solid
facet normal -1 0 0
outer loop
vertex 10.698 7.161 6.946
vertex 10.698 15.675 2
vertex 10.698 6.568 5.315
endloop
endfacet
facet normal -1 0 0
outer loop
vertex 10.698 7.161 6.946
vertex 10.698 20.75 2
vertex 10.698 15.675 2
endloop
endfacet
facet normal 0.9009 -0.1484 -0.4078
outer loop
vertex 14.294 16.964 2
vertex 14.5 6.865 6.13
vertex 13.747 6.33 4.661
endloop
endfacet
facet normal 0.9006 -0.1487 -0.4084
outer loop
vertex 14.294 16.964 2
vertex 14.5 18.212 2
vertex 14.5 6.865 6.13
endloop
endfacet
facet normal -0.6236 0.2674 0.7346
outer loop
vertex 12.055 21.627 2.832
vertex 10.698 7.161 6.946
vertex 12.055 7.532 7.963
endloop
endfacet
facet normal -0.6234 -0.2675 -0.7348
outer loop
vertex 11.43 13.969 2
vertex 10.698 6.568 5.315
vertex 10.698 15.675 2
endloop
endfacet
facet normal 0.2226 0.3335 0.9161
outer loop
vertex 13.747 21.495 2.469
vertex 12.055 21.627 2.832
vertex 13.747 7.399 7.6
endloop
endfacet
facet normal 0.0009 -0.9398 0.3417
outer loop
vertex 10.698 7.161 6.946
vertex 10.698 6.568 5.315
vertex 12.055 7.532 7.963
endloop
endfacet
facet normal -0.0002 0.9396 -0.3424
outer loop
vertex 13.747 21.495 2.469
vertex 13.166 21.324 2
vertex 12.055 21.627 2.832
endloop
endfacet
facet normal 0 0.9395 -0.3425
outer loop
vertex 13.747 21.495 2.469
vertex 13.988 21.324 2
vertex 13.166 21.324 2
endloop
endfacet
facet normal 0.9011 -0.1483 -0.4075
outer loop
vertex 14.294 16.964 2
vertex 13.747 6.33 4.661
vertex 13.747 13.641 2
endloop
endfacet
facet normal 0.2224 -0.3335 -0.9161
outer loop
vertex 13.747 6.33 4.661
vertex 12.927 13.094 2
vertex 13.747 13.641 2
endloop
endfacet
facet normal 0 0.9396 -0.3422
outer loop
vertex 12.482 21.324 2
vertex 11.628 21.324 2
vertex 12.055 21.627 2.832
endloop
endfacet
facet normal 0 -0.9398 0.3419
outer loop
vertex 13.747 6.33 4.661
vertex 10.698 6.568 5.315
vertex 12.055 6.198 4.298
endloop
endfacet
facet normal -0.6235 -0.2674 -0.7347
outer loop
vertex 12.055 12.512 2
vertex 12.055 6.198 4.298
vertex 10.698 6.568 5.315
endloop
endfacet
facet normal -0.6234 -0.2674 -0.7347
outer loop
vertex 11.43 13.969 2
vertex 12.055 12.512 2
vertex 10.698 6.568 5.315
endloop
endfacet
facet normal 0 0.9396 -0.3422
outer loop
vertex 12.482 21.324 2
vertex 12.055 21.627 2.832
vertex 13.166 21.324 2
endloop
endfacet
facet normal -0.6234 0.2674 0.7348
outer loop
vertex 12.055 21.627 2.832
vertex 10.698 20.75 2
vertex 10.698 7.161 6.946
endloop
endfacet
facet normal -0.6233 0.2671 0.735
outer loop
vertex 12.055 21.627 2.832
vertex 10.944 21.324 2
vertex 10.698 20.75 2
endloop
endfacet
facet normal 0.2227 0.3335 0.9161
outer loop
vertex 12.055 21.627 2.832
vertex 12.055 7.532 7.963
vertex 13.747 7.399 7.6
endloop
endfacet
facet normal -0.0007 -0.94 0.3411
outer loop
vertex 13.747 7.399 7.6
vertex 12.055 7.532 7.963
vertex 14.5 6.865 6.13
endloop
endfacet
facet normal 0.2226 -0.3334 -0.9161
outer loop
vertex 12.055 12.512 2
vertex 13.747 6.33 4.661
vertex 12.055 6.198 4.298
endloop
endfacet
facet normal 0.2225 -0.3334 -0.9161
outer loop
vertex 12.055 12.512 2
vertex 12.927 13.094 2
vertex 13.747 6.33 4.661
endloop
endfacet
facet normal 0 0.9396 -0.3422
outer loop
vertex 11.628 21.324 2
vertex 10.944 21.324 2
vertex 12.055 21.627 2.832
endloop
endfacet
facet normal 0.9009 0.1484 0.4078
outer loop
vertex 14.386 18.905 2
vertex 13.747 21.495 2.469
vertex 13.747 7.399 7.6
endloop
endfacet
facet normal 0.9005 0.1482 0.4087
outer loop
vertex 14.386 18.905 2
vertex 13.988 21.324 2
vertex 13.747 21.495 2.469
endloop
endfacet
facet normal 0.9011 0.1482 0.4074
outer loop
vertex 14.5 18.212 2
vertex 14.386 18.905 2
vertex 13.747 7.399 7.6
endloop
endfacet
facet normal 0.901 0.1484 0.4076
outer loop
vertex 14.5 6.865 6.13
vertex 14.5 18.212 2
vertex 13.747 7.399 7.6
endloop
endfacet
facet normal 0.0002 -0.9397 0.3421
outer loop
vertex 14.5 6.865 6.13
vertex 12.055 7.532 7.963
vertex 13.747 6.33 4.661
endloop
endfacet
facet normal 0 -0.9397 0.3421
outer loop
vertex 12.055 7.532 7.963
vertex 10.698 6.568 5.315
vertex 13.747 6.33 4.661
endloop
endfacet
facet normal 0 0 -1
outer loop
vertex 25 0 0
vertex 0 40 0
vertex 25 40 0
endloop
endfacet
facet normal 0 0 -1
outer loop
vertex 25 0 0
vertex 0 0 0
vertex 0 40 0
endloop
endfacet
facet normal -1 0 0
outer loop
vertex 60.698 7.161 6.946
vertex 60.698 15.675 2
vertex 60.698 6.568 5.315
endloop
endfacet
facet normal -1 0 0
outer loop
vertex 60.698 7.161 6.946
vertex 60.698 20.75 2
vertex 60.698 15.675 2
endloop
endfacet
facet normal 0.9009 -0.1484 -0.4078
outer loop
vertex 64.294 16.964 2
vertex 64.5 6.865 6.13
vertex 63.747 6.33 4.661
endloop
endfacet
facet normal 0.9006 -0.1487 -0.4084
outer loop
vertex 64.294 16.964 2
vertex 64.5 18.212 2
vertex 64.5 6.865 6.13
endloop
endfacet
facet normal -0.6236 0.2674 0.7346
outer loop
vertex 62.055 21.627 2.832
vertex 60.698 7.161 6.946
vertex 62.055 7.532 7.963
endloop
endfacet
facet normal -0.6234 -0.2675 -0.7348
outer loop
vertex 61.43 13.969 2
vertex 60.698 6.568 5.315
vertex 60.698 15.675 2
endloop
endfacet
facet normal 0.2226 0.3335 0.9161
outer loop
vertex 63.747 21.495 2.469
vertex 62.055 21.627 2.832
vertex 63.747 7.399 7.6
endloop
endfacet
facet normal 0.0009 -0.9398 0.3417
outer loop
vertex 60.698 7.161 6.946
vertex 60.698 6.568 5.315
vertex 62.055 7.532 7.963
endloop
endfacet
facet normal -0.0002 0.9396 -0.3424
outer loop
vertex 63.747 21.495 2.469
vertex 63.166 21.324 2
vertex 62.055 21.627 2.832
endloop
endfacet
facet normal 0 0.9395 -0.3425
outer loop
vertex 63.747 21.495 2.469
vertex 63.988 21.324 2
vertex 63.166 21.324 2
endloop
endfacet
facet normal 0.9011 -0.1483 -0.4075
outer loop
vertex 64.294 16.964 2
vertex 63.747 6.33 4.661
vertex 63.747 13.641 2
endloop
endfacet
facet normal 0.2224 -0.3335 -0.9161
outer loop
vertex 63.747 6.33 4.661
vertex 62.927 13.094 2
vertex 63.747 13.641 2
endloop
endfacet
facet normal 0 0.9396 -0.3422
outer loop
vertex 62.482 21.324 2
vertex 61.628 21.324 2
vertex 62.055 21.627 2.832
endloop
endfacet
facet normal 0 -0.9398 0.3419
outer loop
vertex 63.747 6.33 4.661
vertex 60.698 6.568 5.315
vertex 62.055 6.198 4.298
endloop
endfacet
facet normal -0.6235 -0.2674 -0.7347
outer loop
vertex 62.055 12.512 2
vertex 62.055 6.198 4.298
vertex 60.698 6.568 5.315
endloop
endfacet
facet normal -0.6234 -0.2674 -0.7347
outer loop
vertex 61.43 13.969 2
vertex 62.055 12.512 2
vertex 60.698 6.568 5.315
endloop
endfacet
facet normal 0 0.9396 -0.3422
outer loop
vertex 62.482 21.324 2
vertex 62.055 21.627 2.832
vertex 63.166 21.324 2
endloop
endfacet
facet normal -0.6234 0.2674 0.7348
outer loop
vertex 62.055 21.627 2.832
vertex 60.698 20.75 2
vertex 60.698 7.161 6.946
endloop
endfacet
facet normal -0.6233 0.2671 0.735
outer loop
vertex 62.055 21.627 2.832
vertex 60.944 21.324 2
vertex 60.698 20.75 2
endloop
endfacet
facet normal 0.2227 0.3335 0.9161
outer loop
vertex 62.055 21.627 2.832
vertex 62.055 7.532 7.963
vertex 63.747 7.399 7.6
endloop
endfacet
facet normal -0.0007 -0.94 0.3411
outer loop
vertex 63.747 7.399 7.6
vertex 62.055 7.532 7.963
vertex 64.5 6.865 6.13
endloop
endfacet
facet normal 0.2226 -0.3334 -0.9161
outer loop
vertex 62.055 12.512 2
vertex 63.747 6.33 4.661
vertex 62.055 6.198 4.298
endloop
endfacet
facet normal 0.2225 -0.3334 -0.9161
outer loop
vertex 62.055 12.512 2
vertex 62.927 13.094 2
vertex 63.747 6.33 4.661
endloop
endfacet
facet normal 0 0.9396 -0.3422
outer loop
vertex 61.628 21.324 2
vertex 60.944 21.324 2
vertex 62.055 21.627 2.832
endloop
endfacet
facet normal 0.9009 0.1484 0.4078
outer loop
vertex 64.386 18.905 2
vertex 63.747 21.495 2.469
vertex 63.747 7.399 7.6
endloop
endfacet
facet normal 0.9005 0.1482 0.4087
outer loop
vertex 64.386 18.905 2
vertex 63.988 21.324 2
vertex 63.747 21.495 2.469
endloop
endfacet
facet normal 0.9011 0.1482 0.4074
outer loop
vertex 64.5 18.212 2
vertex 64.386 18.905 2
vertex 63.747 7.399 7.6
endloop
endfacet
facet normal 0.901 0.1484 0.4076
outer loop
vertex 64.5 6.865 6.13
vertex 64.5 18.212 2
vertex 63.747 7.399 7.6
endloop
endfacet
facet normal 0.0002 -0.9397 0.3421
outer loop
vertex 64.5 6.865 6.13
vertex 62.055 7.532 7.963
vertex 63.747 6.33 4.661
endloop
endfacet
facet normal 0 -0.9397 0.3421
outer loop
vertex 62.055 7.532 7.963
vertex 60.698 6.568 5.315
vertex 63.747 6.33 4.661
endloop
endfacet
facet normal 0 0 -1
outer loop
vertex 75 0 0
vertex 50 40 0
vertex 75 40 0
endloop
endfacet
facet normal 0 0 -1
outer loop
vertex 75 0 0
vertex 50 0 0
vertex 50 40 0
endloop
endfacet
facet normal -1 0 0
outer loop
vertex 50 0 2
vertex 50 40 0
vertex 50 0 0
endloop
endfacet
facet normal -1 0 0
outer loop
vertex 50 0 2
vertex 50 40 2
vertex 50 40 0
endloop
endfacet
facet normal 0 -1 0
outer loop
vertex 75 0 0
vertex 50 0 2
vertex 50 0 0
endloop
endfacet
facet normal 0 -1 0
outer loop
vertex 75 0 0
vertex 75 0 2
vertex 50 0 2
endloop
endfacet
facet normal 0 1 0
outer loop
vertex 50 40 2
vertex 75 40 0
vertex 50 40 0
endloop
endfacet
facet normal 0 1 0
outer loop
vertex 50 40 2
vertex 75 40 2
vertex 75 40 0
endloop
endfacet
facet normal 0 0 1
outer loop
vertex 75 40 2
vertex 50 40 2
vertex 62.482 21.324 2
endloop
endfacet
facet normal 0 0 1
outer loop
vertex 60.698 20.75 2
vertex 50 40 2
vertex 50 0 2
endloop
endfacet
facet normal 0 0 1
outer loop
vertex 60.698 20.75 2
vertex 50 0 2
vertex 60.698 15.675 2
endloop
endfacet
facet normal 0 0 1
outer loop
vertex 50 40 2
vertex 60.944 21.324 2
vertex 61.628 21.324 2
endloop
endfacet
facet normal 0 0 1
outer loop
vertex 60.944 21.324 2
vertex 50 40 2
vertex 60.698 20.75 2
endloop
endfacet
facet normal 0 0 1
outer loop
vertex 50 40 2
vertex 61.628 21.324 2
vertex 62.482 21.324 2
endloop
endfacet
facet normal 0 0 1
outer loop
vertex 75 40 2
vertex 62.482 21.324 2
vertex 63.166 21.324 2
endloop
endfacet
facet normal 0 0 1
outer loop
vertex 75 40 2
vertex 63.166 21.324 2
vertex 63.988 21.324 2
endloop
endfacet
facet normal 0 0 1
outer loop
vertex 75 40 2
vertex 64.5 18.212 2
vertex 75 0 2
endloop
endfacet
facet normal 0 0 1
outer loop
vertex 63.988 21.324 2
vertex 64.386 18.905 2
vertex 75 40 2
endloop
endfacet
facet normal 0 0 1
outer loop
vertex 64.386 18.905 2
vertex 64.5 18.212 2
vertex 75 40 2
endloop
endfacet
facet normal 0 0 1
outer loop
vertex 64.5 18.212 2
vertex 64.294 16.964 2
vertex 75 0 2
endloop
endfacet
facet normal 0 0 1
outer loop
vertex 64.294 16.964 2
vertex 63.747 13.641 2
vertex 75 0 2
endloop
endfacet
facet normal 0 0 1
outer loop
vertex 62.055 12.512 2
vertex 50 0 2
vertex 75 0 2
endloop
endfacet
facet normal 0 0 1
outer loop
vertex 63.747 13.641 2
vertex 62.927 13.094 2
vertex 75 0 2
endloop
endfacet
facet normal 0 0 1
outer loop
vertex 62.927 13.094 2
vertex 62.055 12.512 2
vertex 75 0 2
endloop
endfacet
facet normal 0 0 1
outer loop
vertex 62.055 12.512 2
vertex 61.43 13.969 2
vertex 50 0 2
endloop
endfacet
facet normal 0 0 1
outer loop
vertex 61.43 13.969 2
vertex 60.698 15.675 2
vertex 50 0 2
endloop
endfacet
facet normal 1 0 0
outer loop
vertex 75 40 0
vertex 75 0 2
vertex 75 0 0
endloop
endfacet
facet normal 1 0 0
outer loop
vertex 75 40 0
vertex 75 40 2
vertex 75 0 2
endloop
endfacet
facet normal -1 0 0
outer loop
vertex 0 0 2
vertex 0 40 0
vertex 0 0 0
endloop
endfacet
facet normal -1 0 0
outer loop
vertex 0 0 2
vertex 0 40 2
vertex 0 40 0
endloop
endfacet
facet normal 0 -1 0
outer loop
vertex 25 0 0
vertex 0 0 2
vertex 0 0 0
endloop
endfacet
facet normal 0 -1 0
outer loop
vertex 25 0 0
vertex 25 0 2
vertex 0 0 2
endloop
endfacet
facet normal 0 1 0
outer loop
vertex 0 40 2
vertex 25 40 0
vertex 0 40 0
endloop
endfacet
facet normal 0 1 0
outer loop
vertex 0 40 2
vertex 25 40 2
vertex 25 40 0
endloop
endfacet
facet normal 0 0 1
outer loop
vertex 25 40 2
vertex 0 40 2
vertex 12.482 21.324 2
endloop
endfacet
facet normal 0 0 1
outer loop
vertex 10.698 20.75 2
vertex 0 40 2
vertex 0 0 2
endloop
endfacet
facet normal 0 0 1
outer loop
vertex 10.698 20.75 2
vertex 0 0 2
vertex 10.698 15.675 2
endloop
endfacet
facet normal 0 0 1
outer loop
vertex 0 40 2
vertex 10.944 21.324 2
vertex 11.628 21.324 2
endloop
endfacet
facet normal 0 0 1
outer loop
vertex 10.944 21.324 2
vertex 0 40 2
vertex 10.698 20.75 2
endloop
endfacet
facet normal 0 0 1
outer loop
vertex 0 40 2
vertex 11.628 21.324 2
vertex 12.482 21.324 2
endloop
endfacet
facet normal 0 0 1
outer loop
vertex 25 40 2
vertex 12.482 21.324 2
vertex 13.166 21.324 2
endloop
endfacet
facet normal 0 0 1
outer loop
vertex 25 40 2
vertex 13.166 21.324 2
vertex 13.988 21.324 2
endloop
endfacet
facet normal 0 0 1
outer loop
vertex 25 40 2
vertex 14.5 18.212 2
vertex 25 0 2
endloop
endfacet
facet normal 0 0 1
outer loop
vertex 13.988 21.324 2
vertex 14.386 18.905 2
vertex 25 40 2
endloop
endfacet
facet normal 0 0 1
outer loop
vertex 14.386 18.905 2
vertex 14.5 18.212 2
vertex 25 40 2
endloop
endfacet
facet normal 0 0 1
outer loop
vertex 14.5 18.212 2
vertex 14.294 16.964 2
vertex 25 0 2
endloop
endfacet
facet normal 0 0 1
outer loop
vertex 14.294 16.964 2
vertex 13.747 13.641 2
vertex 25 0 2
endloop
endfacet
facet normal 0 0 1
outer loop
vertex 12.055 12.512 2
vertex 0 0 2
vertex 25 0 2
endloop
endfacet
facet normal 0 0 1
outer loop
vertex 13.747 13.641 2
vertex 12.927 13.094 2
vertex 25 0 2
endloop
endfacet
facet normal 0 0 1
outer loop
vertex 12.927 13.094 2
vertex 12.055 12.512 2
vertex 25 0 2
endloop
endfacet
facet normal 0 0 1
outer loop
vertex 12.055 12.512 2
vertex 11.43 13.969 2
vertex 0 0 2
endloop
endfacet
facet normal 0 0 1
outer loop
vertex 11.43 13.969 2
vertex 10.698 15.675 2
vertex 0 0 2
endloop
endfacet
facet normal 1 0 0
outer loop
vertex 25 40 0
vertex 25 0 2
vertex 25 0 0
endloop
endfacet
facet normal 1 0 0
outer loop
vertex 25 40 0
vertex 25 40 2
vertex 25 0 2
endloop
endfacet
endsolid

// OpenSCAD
cube([25, 40, 2]);
difference() {
    translate([12.5, 20.96, 1]) rotate([70, 0, 0]) cylinder(r=2, 15);
    translate([0, 0, -10]) cube([25, 40, 10]);    
}

translate([50, 0, 0]) {
cube([25, 40, 2]);
difference() {
    translate([12.5, 20.96, 1]) rotate([70, 0, 0]) cylinder(r=2, 15);
    translate([0, 0, -10]) cube([25, 40, 10]);    
}
}
